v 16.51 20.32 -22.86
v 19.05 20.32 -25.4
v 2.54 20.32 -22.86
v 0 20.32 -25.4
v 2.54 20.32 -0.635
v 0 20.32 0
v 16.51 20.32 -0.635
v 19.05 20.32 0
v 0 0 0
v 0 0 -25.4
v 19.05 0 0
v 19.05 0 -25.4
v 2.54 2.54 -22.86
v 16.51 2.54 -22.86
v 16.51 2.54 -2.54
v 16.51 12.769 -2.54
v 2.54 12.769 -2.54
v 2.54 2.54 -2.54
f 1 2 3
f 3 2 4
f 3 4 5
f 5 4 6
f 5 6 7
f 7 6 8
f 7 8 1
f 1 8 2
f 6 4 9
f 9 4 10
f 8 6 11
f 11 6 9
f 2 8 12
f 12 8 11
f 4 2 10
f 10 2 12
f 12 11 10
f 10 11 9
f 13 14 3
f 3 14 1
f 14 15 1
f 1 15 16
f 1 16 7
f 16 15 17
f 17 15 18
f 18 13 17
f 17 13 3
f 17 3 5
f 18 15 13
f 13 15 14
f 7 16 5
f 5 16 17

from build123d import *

# Parameters (mm, degrees)
SKETCH3_W           = 19.05
SKETCH3_H           = 25.4
BOSS_EXTRUDE1_DEPTH = 20.32
SKETCH4_W           = 13.97
SKETCH4_H           = 20.32
CUT_EXTRUDE1_DEPTH  = 17.78
CUT_EXTRUDE3_START  = -2.54
CUT_EXTRUDE3_DEPTH  = 13.97


with BuildPart() as part:
    # Sketch3 → Boss-Extrude1 (new body)
    with BuildSketch(Plane(origin=(0, 0, 0), x_dir=(1, 0, 0), z_dir=(0, 1, 0))):
        with Locations((9.525, 12.7)):
            Rectangle(SKETCH3_W, SKETCH3_H)
    extrude(amount=BOSS_EXTRUDE1_DEPTH)

    # Sketch4 → Cut-Extrude1 (cut)
    with BuildSketch(Plane(origin=(0, 20.32, 0), x_dir=(1, 0, 0), z_dir=(0, 1, 0))):
        with Locations((9.525, 12.7)):
            Rectangle(SKETCH4_W, SKETCH4_H)
    extrude(amount=-CUT_EXTRUDE1_DEPTH, mode=Mode.SUBTRACT)

    # Sketch6 → Cut-Extrude3 (cut)
    with BuildSketch(Plane.ZY.offset(CUT_EXTRUDE3_START)):
        Polygon((-2.562657446, 20.32), (-0.635, 20.32), (-2.562657446, 12.678976029), align=None)
    extrude(amount=-CUT_EXTRUDE3_DEPTH, mode=Mode.SUBTRACT)


solid = part.part
